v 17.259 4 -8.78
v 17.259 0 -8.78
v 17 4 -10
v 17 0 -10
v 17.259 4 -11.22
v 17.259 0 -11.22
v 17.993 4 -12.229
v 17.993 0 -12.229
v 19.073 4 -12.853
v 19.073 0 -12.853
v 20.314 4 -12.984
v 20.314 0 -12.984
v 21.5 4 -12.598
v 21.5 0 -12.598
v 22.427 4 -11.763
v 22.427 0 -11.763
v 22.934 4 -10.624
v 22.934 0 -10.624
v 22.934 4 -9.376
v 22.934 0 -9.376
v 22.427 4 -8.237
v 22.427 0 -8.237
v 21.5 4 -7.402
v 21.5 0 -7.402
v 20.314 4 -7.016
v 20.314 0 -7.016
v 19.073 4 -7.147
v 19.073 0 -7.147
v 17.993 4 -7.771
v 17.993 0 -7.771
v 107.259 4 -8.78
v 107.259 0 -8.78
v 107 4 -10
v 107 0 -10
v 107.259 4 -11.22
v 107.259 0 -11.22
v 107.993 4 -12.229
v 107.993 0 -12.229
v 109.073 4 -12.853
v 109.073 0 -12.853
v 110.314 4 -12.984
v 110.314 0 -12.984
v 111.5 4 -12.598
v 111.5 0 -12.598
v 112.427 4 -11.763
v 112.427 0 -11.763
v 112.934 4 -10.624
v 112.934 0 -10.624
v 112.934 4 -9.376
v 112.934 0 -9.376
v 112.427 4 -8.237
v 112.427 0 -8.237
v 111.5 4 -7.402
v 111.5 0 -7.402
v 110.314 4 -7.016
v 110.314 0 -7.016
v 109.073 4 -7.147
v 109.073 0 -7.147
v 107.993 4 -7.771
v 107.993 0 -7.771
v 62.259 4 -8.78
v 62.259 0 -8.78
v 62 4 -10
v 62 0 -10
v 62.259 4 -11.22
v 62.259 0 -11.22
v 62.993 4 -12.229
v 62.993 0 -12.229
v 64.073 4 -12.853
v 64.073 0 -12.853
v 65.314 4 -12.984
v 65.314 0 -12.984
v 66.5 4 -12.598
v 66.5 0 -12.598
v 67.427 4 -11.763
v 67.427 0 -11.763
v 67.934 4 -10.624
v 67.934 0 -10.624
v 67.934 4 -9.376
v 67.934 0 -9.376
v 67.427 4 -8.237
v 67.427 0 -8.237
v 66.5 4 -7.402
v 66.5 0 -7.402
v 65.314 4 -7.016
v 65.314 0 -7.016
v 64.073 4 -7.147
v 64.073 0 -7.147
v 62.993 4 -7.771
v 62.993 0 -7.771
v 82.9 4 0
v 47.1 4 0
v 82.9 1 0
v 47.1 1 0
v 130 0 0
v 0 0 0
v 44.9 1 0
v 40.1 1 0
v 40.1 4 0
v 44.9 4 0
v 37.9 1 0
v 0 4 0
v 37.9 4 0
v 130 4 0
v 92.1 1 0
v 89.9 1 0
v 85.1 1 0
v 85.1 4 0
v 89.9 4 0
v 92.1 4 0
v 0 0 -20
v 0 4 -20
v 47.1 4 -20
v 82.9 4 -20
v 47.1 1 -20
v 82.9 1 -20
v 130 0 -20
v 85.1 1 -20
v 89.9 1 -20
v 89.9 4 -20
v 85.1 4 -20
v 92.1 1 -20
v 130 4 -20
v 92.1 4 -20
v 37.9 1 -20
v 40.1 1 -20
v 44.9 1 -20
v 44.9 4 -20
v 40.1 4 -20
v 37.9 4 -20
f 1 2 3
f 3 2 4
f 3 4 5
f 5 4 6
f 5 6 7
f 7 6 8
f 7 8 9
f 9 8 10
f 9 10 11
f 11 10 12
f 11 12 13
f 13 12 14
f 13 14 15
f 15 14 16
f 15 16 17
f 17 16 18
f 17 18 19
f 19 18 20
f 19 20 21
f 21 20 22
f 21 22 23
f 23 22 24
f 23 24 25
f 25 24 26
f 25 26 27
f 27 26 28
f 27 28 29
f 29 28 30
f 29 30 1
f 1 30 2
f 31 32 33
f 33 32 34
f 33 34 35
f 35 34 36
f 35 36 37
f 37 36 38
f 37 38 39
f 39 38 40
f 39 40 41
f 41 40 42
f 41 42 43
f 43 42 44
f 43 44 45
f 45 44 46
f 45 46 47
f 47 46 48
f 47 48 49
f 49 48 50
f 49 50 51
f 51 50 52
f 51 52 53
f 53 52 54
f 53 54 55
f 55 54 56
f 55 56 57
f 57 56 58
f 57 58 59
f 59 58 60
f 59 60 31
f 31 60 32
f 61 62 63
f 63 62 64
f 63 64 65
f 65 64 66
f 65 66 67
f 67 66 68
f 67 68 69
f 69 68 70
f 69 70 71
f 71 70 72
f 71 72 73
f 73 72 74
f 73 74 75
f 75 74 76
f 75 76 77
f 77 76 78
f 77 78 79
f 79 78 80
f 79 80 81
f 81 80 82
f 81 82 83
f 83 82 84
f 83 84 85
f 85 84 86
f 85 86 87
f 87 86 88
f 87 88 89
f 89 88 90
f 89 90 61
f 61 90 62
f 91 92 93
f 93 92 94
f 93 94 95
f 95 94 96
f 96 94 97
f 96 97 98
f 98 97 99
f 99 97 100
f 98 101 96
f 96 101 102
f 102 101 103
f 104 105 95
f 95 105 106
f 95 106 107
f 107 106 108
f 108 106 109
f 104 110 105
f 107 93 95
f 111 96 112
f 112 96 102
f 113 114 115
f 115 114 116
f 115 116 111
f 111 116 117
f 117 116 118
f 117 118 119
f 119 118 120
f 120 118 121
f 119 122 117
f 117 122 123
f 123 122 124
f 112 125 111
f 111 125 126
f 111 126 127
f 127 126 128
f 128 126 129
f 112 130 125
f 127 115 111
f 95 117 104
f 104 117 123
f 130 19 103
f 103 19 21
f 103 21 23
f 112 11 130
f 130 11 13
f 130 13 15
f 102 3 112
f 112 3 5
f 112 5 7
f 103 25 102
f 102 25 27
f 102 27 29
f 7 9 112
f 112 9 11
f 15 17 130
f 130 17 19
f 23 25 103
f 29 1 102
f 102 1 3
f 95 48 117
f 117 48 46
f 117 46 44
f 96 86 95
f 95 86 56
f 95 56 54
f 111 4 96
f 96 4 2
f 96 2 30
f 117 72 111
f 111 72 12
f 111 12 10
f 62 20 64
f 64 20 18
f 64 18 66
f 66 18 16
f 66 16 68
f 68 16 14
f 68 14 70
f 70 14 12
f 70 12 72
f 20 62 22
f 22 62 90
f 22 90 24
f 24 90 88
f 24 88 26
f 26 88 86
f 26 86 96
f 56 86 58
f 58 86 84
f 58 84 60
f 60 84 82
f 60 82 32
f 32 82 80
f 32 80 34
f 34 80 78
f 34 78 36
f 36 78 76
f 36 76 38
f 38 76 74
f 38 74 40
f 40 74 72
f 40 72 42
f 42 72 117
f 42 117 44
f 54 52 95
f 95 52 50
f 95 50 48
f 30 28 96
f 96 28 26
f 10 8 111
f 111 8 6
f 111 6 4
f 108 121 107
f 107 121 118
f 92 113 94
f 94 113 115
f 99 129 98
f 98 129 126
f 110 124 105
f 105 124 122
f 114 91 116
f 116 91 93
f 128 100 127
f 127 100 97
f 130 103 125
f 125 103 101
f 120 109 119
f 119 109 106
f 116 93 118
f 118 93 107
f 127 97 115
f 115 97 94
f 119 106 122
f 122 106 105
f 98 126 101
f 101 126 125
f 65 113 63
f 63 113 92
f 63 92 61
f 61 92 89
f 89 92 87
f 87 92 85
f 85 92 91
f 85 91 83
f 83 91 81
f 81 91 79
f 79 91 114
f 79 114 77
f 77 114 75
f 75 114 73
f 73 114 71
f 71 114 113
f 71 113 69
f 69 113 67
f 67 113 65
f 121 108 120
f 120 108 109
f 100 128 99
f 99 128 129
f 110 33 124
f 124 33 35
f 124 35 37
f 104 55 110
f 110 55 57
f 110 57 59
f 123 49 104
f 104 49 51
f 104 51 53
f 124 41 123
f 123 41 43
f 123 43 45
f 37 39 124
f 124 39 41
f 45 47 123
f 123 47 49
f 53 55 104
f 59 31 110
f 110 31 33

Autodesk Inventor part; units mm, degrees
ref_plane "YZ Plane" through (0, 0, 0) normal (1, 0, 0) x (0, 1, 0)
ref_plane "XZ Plane" through (0, 0, 0) normal (0, 1, 0) x (-1, 0, 0)
ref_plane "XY Plane" through (0, 0, 0) normal (0, 0, 1) x (1, 0, 0)
sketch "Sketch1" plane through (0, 0, 0) normal (0, 1, 0) x (-1, 0, 0)
  line L0 (0, 0) -> (-130, 0)
  line L1 (-130, 0) -> (-130, -20)
  line L2 (-130, -20) -> (0, -20)
  line L3 (0, -20) -> (0, 0)
  line L4 (0, -10) -> (-130, -10) construction
  line L5 (-46, 0) -> (-46, -20) construction
  line L6 (-84, 0) -> (-84, -20) construction
  line L7 (-65, 0) -> (-65, -20) construction
  line L8 (-39, 0) -> (-39, -20) construction
  line L9 (-91, 0) -> (-91, -20) construction
  circle A0 centre (-65, -10) radius 3
  line L10 (-20, 0) -> (-20, -20) construction
  line L11 (-110, 0) -> (-110, -20) construction
  circle A1 centre (-110, -10) radius 3
  circle A2 centre (-20, -10) radius 3
  dimension "d1" = 20
  dimension "d0" = 130
  dimension "d2" = 65
  dimension "d3" = 26
  dimension "d4" = 26
  dimension "d5" = 19
  dimension "d6" = 19
  dimension "d17" = 6
  dimension "d18" = 20
  dimension "d19" = 20
  dimension "d20" = 6
  dimension "d21" = 6
extrude "Extrusion1" add sketch "Sketch1" along normal blind 4
sketch "Sketch2" plane through (0, 4, 0) normal (0, 1, 0) x (1, 0, 0)
  line L0 (130, 20) -> (0, 20) construction
  line L1 (65, 20) -> (65, 0) construction
  line L2 (0, 0) -> (130, 0) construction
  line L3 (0, 20) -> (0, 0) construction
  line L4 (39, 20) -> (39, 0) construction
  line L5 (46, 20) -> (46, 0) construction
  line L6 (84, 20) -> (84, 0) construction
  line L7 (91, 20) -> (91, 0) construction
  line L8 (40.1, 20) -> (40.1, 0)
  line L9 (37.9, 20) -> (37.9, 0)
  line L10 (44.9, 20) -> (44.9, 0)
  line L11 (47.1, 20) -> (47.1, 0)
  line L12 (82.9, 20) -> (82.9, 0)
  line L13 (85.1, 20) -> (85.1, 0)
  line L14 (89.9, 20) -> (89.9, 0)
  line L15 (92.1, 20) -> (92.1, 0)
  line L16 (37.9, 20) -> (40.1, 20)
  line L17 (37.9, 0) -> (40.1, 0)
  line L18 (44.9, 0) -> (47.1, 0)
  line L19 (44.9, 20) -> (47.1, 20)
  line L20 (82.9, 20) -> (85.1, 20)
  line L21 (89.9, 20) -> (92.1, 20)
  line L22 (85.1, 0) -> (82.9, 0)
  line L23 (89.9, 0) -> (92.1, 0)
  dimension "d24" = 65
  dimension "d25" = 19
  dimension "d26" = 26
  dimension "d27" = 19
  dimension "d28" = 26
  dimension "d29" = 1.1
  dimension "d30" = 1.1
  dimension "d31" = 1.1
  dimension "d32" = 1.1
  dimension "d33" = 1.1
  dimension "d34" = 1.1
  dimension "d35" = 1.1
  dimension "d36" = 1.1
extrude "Extrusion2" cut sketch "Sketch2" against normal blind 3
properties part number "clamp"
